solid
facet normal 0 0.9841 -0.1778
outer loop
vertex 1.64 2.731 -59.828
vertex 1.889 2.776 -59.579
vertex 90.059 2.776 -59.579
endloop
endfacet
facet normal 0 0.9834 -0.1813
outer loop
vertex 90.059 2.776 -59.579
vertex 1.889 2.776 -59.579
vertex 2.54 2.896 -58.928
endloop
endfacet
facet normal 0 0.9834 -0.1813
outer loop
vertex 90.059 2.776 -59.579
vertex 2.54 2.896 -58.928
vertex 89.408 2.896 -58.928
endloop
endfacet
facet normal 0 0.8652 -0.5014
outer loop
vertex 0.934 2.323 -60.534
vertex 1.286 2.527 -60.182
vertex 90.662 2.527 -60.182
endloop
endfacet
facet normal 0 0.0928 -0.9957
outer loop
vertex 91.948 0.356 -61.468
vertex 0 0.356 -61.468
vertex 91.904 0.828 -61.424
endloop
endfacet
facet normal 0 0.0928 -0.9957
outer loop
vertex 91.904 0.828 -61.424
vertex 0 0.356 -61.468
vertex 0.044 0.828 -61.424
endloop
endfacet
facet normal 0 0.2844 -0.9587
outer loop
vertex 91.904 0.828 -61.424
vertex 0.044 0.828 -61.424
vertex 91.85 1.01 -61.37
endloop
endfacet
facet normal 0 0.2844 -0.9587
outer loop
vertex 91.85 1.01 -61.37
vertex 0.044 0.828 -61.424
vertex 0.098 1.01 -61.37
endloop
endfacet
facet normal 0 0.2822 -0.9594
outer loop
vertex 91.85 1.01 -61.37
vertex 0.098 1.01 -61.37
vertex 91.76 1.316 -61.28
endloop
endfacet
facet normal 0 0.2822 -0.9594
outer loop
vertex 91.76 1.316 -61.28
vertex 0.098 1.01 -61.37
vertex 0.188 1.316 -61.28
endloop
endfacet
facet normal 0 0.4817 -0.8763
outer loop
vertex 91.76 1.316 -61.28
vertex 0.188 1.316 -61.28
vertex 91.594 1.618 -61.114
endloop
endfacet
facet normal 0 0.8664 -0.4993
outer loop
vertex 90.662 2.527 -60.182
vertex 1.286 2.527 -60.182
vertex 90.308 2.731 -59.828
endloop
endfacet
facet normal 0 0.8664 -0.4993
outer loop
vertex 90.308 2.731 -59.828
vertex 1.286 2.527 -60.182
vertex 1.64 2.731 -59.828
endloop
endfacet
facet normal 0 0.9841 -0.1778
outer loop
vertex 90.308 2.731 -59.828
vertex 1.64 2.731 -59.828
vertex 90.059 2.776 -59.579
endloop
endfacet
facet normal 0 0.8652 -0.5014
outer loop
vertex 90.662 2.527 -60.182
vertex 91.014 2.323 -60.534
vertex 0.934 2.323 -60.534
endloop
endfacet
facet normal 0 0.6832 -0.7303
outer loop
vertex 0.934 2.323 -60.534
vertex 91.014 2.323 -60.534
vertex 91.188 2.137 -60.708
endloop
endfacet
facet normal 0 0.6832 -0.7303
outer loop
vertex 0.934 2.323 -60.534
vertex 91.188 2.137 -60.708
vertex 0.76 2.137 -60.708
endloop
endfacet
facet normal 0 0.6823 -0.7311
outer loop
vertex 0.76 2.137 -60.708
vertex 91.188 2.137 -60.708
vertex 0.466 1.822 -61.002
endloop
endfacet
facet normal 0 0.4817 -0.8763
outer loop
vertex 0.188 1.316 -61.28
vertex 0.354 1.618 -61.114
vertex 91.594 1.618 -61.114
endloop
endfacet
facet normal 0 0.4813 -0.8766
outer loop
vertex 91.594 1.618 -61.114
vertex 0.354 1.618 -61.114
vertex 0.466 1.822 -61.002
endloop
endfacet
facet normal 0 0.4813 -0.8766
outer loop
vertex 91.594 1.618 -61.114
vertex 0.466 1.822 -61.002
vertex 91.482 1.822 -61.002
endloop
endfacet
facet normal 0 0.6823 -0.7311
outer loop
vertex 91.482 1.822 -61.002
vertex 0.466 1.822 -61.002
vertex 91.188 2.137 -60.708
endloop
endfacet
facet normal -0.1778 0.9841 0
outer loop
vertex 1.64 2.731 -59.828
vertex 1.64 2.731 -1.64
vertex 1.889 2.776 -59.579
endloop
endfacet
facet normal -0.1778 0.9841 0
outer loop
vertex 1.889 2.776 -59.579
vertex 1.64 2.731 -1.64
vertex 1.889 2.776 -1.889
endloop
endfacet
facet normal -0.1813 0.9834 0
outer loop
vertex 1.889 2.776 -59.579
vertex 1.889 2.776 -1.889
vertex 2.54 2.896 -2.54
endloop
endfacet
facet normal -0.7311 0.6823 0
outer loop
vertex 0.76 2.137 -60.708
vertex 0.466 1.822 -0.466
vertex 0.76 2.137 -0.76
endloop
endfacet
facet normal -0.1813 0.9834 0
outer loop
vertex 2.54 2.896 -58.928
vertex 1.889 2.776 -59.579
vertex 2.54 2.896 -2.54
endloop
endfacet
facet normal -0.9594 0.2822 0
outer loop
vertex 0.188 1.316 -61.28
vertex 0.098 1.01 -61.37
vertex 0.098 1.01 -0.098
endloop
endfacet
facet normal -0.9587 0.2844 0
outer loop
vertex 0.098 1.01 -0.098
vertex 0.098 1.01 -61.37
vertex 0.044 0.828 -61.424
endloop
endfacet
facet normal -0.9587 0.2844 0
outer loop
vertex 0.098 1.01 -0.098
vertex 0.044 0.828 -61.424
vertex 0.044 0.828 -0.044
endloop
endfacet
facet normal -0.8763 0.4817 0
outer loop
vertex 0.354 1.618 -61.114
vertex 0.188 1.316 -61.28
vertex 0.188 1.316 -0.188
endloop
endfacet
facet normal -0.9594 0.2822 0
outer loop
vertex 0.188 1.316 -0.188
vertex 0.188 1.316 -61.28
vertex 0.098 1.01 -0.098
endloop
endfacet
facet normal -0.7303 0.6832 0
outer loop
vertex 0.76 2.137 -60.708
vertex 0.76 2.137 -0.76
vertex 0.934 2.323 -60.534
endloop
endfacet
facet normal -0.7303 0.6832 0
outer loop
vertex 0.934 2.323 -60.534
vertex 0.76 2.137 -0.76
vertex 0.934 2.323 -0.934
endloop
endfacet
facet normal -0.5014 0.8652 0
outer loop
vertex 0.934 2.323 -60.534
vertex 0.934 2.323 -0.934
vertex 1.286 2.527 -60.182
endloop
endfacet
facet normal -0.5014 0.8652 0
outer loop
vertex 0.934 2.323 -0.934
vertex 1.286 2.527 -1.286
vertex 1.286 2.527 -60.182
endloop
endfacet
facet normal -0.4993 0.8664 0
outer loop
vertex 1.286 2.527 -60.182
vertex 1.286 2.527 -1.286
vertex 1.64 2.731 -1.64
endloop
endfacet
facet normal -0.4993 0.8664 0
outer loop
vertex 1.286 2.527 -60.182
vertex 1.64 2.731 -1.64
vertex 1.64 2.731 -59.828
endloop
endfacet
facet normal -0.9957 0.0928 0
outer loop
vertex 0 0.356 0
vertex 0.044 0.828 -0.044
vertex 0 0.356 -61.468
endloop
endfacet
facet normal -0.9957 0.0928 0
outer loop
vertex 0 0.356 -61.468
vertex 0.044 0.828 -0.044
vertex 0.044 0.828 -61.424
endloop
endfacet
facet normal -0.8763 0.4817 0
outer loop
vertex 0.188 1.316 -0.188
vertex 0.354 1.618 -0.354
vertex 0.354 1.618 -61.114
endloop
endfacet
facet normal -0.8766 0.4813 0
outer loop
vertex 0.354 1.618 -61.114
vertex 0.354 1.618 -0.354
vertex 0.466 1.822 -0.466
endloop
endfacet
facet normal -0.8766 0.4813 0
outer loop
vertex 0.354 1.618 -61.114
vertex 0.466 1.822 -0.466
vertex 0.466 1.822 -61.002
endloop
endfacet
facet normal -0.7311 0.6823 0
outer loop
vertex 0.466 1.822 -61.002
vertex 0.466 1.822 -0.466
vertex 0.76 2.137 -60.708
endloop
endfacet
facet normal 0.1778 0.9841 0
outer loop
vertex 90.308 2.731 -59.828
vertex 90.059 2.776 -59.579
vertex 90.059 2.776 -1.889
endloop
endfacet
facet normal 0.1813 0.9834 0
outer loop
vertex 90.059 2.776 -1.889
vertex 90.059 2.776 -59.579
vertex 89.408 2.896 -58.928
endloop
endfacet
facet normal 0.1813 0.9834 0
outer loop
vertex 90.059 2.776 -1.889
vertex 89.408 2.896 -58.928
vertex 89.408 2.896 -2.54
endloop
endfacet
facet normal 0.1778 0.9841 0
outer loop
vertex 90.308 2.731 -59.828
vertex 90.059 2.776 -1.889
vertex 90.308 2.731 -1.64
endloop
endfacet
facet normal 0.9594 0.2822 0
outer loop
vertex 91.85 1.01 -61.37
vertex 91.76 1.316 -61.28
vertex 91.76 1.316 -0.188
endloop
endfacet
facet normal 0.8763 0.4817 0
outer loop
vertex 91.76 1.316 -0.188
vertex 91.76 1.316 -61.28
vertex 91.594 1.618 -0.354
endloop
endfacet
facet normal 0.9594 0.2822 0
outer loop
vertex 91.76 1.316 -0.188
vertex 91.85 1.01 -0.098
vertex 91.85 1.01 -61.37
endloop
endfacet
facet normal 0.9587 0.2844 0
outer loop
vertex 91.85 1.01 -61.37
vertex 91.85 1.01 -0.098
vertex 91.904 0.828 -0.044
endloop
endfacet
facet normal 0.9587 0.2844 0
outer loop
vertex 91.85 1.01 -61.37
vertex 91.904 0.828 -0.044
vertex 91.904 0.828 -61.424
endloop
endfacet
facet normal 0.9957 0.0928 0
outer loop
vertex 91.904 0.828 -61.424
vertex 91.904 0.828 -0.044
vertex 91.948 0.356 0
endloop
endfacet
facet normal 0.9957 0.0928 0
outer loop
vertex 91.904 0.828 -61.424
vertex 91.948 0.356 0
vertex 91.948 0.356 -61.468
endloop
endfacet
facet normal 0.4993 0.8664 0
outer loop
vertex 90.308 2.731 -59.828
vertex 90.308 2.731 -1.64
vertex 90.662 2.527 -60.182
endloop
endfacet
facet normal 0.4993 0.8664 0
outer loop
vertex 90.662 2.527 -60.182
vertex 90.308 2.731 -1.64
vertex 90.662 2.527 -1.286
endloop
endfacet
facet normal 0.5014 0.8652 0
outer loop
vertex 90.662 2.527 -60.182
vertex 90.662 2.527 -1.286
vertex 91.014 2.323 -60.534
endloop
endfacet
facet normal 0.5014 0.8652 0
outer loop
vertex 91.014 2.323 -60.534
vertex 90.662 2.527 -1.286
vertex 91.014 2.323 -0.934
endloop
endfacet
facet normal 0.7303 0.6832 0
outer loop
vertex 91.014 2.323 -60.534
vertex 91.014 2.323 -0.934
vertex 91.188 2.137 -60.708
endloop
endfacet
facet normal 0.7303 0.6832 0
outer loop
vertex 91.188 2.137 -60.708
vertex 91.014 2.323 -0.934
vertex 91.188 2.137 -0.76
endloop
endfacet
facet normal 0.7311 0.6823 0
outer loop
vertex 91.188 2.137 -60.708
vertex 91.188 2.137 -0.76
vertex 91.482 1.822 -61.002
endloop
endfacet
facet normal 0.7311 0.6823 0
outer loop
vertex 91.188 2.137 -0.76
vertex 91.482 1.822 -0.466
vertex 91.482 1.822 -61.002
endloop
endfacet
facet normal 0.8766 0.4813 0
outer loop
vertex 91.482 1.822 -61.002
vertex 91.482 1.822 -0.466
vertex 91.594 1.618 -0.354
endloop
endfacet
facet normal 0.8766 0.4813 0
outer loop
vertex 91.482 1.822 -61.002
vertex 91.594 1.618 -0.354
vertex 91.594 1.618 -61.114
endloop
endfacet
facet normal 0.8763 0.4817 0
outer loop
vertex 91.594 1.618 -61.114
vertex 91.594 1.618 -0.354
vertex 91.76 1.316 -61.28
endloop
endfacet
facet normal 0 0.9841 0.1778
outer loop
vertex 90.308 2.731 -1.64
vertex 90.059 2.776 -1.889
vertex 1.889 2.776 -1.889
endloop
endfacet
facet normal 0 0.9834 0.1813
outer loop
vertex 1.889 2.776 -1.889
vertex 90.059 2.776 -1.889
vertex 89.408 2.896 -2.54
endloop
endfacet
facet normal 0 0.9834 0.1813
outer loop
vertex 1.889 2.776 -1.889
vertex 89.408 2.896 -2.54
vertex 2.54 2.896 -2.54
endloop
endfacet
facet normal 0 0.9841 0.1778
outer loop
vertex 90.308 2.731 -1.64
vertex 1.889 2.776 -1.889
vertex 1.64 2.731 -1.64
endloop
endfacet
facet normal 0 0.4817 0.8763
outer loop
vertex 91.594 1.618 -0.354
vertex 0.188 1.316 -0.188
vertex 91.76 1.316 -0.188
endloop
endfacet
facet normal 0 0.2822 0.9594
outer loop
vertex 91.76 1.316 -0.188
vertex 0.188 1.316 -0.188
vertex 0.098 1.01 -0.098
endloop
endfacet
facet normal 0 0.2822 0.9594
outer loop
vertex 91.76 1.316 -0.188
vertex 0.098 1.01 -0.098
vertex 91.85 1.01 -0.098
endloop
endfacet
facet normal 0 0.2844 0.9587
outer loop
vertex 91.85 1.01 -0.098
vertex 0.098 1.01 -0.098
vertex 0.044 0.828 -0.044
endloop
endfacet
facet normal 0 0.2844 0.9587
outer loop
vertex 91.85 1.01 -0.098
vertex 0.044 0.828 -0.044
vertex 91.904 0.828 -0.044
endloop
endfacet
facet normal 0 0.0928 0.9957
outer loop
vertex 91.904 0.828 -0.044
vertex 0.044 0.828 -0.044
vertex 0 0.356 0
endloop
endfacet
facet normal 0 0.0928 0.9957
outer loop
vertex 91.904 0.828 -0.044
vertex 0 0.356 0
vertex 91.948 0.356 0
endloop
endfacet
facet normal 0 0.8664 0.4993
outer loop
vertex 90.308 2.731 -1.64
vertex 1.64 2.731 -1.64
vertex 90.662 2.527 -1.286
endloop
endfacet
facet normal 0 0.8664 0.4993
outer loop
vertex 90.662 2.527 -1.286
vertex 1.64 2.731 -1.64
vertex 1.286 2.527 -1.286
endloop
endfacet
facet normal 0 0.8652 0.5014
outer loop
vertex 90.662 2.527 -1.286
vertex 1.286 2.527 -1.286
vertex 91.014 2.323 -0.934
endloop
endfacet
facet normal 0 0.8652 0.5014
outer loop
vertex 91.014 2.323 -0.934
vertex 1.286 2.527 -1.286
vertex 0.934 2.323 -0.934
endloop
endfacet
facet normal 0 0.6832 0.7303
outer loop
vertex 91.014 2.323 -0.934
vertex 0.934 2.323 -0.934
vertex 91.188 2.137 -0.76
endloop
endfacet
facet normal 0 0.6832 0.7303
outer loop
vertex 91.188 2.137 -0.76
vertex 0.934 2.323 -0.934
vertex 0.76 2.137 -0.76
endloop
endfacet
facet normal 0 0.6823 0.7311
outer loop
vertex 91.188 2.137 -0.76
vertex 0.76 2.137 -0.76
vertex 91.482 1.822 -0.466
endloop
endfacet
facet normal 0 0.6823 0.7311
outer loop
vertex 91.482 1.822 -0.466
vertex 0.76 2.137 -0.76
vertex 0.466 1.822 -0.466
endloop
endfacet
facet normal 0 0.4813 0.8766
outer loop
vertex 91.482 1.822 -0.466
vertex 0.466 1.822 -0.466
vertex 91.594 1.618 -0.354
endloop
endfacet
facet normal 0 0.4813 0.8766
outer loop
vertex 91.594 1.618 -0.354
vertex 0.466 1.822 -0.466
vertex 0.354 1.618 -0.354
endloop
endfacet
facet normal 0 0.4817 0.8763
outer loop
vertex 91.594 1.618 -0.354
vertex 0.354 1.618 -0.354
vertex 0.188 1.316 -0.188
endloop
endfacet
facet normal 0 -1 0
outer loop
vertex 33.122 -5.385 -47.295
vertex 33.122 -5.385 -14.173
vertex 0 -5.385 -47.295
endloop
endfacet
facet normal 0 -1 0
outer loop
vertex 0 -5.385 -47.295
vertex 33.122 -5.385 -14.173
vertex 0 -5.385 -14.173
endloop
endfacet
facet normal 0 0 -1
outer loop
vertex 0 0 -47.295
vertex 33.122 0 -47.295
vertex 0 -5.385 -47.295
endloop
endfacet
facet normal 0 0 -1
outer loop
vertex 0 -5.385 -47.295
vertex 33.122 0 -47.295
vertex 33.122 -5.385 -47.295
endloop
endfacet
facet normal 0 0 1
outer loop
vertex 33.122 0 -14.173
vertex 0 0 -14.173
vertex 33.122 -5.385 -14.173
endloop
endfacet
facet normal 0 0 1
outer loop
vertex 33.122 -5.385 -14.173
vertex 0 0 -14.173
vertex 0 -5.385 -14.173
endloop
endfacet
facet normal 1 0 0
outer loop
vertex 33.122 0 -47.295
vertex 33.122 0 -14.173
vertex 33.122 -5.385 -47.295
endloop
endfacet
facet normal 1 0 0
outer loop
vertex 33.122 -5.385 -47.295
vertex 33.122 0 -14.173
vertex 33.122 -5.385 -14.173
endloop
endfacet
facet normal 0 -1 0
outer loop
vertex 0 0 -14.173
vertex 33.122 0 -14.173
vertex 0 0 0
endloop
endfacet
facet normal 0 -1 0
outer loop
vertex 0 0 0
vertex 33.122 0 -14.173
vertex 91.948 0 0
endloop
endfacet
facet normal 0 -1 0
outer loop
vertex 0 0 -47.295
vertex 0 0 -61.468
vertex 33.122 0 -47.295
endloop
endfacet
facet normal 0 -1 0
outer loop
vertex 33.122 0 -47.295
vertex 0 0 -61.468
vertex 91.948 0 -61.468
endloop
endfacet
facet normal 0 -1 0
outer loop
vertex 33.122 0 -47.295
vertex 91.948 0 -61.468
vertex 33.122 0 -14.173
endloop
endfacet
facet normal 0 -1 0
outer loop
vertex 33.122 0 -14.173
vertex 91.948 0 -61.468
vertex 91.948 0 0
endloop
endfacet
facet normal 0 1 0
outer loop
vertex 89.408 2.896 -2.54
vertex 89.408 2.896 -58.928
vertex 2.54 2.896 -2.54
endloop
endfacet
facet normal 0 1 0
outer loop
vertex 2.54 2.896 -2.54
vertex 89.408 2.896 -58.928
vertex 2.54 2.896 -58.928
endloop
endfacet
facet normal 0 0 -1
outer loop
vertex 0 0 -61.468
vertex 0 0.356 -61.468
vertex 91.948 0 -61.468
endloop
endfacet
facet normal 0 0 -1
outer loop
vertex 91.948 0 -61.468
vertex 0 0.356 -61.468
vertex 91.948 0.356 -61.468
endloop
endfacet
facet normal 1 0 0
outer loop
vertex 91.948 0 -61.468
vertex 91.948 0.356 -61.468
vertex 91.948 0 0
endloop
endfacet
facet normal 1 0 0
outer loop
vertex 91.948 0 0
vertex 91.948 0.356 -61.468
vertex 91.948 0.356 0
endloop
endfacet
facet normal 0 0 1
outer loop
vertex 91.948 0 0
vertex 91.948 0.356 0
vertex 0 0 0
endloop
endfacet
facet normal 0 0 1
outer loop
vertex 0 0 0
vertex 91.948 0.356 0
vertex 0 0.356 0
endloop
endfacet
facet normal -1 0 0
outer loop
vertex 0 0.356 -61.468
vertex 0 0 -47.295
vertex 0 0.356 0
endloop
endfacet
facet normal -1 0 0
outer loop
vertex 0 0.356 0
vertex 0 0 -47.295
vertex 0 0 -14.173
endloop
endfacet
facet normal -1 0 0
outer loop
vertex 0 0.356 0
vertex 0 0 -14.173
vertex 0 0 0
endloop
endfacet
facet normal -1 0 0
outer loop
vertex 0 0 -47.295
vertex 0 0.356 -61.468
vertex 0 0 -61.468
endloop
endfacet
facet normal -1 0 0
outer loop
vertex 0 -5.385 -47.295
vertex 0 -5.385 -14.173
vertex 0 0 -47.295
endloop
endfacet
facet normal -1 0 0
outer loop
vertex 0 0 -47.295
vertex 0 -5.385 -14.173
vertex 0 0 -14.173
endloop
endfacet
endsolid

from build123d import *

# Parameters (mm, degrees)
SKETCH1_W           = 91.948
SKETCH1_H           = 61.468
BOSS_EXTRUDE1_DEPTH = 2.8956
SKETCH2_W           = 33.1216
SKETCH2_H           = 33.1216
BOSS_EXTRUDE2_DEPTH = 5.3848
FILLET1_R           = 2.54


with BuildPart() as part:
    # Sketch1 → Boss-Extrude1 (new body)
    with BuildSketch(Plane(origin=(0, 0, 0), x_dir=(1, 0, 0), z_dir=(0, 1, 0))):
        with Locations((45.974, 30.734)):
            Rectangle(SKETCH1_W, SKETCH1_H)
    extrude(amount=BOSS_EXTRUDE1_DEPTH)

    # Sketch2 → Boss-Extrude2 (add)
    with BuildSketch(Plane.XZ):
        with Locations((16.5608, -30.734)):
            Rectangle(SKETCH2_W, SKETCH2_H)
    extrude(amount=BOSS_EXTRUDE2_DEPTH)

    # Fillet1
    fillet1_edges = [part.edges().sort_by_distance(p)[0] for p in [
        (91.948, 2.8956, -30.734),
        (45.974, 2.8956, -61.468),
        (0, 2.8956, -30.734),
        (45.974, 2.8956, 0),
    ]]
    fillet(fillet1_edges, radius=FILLET1_R)


solid = part.part
